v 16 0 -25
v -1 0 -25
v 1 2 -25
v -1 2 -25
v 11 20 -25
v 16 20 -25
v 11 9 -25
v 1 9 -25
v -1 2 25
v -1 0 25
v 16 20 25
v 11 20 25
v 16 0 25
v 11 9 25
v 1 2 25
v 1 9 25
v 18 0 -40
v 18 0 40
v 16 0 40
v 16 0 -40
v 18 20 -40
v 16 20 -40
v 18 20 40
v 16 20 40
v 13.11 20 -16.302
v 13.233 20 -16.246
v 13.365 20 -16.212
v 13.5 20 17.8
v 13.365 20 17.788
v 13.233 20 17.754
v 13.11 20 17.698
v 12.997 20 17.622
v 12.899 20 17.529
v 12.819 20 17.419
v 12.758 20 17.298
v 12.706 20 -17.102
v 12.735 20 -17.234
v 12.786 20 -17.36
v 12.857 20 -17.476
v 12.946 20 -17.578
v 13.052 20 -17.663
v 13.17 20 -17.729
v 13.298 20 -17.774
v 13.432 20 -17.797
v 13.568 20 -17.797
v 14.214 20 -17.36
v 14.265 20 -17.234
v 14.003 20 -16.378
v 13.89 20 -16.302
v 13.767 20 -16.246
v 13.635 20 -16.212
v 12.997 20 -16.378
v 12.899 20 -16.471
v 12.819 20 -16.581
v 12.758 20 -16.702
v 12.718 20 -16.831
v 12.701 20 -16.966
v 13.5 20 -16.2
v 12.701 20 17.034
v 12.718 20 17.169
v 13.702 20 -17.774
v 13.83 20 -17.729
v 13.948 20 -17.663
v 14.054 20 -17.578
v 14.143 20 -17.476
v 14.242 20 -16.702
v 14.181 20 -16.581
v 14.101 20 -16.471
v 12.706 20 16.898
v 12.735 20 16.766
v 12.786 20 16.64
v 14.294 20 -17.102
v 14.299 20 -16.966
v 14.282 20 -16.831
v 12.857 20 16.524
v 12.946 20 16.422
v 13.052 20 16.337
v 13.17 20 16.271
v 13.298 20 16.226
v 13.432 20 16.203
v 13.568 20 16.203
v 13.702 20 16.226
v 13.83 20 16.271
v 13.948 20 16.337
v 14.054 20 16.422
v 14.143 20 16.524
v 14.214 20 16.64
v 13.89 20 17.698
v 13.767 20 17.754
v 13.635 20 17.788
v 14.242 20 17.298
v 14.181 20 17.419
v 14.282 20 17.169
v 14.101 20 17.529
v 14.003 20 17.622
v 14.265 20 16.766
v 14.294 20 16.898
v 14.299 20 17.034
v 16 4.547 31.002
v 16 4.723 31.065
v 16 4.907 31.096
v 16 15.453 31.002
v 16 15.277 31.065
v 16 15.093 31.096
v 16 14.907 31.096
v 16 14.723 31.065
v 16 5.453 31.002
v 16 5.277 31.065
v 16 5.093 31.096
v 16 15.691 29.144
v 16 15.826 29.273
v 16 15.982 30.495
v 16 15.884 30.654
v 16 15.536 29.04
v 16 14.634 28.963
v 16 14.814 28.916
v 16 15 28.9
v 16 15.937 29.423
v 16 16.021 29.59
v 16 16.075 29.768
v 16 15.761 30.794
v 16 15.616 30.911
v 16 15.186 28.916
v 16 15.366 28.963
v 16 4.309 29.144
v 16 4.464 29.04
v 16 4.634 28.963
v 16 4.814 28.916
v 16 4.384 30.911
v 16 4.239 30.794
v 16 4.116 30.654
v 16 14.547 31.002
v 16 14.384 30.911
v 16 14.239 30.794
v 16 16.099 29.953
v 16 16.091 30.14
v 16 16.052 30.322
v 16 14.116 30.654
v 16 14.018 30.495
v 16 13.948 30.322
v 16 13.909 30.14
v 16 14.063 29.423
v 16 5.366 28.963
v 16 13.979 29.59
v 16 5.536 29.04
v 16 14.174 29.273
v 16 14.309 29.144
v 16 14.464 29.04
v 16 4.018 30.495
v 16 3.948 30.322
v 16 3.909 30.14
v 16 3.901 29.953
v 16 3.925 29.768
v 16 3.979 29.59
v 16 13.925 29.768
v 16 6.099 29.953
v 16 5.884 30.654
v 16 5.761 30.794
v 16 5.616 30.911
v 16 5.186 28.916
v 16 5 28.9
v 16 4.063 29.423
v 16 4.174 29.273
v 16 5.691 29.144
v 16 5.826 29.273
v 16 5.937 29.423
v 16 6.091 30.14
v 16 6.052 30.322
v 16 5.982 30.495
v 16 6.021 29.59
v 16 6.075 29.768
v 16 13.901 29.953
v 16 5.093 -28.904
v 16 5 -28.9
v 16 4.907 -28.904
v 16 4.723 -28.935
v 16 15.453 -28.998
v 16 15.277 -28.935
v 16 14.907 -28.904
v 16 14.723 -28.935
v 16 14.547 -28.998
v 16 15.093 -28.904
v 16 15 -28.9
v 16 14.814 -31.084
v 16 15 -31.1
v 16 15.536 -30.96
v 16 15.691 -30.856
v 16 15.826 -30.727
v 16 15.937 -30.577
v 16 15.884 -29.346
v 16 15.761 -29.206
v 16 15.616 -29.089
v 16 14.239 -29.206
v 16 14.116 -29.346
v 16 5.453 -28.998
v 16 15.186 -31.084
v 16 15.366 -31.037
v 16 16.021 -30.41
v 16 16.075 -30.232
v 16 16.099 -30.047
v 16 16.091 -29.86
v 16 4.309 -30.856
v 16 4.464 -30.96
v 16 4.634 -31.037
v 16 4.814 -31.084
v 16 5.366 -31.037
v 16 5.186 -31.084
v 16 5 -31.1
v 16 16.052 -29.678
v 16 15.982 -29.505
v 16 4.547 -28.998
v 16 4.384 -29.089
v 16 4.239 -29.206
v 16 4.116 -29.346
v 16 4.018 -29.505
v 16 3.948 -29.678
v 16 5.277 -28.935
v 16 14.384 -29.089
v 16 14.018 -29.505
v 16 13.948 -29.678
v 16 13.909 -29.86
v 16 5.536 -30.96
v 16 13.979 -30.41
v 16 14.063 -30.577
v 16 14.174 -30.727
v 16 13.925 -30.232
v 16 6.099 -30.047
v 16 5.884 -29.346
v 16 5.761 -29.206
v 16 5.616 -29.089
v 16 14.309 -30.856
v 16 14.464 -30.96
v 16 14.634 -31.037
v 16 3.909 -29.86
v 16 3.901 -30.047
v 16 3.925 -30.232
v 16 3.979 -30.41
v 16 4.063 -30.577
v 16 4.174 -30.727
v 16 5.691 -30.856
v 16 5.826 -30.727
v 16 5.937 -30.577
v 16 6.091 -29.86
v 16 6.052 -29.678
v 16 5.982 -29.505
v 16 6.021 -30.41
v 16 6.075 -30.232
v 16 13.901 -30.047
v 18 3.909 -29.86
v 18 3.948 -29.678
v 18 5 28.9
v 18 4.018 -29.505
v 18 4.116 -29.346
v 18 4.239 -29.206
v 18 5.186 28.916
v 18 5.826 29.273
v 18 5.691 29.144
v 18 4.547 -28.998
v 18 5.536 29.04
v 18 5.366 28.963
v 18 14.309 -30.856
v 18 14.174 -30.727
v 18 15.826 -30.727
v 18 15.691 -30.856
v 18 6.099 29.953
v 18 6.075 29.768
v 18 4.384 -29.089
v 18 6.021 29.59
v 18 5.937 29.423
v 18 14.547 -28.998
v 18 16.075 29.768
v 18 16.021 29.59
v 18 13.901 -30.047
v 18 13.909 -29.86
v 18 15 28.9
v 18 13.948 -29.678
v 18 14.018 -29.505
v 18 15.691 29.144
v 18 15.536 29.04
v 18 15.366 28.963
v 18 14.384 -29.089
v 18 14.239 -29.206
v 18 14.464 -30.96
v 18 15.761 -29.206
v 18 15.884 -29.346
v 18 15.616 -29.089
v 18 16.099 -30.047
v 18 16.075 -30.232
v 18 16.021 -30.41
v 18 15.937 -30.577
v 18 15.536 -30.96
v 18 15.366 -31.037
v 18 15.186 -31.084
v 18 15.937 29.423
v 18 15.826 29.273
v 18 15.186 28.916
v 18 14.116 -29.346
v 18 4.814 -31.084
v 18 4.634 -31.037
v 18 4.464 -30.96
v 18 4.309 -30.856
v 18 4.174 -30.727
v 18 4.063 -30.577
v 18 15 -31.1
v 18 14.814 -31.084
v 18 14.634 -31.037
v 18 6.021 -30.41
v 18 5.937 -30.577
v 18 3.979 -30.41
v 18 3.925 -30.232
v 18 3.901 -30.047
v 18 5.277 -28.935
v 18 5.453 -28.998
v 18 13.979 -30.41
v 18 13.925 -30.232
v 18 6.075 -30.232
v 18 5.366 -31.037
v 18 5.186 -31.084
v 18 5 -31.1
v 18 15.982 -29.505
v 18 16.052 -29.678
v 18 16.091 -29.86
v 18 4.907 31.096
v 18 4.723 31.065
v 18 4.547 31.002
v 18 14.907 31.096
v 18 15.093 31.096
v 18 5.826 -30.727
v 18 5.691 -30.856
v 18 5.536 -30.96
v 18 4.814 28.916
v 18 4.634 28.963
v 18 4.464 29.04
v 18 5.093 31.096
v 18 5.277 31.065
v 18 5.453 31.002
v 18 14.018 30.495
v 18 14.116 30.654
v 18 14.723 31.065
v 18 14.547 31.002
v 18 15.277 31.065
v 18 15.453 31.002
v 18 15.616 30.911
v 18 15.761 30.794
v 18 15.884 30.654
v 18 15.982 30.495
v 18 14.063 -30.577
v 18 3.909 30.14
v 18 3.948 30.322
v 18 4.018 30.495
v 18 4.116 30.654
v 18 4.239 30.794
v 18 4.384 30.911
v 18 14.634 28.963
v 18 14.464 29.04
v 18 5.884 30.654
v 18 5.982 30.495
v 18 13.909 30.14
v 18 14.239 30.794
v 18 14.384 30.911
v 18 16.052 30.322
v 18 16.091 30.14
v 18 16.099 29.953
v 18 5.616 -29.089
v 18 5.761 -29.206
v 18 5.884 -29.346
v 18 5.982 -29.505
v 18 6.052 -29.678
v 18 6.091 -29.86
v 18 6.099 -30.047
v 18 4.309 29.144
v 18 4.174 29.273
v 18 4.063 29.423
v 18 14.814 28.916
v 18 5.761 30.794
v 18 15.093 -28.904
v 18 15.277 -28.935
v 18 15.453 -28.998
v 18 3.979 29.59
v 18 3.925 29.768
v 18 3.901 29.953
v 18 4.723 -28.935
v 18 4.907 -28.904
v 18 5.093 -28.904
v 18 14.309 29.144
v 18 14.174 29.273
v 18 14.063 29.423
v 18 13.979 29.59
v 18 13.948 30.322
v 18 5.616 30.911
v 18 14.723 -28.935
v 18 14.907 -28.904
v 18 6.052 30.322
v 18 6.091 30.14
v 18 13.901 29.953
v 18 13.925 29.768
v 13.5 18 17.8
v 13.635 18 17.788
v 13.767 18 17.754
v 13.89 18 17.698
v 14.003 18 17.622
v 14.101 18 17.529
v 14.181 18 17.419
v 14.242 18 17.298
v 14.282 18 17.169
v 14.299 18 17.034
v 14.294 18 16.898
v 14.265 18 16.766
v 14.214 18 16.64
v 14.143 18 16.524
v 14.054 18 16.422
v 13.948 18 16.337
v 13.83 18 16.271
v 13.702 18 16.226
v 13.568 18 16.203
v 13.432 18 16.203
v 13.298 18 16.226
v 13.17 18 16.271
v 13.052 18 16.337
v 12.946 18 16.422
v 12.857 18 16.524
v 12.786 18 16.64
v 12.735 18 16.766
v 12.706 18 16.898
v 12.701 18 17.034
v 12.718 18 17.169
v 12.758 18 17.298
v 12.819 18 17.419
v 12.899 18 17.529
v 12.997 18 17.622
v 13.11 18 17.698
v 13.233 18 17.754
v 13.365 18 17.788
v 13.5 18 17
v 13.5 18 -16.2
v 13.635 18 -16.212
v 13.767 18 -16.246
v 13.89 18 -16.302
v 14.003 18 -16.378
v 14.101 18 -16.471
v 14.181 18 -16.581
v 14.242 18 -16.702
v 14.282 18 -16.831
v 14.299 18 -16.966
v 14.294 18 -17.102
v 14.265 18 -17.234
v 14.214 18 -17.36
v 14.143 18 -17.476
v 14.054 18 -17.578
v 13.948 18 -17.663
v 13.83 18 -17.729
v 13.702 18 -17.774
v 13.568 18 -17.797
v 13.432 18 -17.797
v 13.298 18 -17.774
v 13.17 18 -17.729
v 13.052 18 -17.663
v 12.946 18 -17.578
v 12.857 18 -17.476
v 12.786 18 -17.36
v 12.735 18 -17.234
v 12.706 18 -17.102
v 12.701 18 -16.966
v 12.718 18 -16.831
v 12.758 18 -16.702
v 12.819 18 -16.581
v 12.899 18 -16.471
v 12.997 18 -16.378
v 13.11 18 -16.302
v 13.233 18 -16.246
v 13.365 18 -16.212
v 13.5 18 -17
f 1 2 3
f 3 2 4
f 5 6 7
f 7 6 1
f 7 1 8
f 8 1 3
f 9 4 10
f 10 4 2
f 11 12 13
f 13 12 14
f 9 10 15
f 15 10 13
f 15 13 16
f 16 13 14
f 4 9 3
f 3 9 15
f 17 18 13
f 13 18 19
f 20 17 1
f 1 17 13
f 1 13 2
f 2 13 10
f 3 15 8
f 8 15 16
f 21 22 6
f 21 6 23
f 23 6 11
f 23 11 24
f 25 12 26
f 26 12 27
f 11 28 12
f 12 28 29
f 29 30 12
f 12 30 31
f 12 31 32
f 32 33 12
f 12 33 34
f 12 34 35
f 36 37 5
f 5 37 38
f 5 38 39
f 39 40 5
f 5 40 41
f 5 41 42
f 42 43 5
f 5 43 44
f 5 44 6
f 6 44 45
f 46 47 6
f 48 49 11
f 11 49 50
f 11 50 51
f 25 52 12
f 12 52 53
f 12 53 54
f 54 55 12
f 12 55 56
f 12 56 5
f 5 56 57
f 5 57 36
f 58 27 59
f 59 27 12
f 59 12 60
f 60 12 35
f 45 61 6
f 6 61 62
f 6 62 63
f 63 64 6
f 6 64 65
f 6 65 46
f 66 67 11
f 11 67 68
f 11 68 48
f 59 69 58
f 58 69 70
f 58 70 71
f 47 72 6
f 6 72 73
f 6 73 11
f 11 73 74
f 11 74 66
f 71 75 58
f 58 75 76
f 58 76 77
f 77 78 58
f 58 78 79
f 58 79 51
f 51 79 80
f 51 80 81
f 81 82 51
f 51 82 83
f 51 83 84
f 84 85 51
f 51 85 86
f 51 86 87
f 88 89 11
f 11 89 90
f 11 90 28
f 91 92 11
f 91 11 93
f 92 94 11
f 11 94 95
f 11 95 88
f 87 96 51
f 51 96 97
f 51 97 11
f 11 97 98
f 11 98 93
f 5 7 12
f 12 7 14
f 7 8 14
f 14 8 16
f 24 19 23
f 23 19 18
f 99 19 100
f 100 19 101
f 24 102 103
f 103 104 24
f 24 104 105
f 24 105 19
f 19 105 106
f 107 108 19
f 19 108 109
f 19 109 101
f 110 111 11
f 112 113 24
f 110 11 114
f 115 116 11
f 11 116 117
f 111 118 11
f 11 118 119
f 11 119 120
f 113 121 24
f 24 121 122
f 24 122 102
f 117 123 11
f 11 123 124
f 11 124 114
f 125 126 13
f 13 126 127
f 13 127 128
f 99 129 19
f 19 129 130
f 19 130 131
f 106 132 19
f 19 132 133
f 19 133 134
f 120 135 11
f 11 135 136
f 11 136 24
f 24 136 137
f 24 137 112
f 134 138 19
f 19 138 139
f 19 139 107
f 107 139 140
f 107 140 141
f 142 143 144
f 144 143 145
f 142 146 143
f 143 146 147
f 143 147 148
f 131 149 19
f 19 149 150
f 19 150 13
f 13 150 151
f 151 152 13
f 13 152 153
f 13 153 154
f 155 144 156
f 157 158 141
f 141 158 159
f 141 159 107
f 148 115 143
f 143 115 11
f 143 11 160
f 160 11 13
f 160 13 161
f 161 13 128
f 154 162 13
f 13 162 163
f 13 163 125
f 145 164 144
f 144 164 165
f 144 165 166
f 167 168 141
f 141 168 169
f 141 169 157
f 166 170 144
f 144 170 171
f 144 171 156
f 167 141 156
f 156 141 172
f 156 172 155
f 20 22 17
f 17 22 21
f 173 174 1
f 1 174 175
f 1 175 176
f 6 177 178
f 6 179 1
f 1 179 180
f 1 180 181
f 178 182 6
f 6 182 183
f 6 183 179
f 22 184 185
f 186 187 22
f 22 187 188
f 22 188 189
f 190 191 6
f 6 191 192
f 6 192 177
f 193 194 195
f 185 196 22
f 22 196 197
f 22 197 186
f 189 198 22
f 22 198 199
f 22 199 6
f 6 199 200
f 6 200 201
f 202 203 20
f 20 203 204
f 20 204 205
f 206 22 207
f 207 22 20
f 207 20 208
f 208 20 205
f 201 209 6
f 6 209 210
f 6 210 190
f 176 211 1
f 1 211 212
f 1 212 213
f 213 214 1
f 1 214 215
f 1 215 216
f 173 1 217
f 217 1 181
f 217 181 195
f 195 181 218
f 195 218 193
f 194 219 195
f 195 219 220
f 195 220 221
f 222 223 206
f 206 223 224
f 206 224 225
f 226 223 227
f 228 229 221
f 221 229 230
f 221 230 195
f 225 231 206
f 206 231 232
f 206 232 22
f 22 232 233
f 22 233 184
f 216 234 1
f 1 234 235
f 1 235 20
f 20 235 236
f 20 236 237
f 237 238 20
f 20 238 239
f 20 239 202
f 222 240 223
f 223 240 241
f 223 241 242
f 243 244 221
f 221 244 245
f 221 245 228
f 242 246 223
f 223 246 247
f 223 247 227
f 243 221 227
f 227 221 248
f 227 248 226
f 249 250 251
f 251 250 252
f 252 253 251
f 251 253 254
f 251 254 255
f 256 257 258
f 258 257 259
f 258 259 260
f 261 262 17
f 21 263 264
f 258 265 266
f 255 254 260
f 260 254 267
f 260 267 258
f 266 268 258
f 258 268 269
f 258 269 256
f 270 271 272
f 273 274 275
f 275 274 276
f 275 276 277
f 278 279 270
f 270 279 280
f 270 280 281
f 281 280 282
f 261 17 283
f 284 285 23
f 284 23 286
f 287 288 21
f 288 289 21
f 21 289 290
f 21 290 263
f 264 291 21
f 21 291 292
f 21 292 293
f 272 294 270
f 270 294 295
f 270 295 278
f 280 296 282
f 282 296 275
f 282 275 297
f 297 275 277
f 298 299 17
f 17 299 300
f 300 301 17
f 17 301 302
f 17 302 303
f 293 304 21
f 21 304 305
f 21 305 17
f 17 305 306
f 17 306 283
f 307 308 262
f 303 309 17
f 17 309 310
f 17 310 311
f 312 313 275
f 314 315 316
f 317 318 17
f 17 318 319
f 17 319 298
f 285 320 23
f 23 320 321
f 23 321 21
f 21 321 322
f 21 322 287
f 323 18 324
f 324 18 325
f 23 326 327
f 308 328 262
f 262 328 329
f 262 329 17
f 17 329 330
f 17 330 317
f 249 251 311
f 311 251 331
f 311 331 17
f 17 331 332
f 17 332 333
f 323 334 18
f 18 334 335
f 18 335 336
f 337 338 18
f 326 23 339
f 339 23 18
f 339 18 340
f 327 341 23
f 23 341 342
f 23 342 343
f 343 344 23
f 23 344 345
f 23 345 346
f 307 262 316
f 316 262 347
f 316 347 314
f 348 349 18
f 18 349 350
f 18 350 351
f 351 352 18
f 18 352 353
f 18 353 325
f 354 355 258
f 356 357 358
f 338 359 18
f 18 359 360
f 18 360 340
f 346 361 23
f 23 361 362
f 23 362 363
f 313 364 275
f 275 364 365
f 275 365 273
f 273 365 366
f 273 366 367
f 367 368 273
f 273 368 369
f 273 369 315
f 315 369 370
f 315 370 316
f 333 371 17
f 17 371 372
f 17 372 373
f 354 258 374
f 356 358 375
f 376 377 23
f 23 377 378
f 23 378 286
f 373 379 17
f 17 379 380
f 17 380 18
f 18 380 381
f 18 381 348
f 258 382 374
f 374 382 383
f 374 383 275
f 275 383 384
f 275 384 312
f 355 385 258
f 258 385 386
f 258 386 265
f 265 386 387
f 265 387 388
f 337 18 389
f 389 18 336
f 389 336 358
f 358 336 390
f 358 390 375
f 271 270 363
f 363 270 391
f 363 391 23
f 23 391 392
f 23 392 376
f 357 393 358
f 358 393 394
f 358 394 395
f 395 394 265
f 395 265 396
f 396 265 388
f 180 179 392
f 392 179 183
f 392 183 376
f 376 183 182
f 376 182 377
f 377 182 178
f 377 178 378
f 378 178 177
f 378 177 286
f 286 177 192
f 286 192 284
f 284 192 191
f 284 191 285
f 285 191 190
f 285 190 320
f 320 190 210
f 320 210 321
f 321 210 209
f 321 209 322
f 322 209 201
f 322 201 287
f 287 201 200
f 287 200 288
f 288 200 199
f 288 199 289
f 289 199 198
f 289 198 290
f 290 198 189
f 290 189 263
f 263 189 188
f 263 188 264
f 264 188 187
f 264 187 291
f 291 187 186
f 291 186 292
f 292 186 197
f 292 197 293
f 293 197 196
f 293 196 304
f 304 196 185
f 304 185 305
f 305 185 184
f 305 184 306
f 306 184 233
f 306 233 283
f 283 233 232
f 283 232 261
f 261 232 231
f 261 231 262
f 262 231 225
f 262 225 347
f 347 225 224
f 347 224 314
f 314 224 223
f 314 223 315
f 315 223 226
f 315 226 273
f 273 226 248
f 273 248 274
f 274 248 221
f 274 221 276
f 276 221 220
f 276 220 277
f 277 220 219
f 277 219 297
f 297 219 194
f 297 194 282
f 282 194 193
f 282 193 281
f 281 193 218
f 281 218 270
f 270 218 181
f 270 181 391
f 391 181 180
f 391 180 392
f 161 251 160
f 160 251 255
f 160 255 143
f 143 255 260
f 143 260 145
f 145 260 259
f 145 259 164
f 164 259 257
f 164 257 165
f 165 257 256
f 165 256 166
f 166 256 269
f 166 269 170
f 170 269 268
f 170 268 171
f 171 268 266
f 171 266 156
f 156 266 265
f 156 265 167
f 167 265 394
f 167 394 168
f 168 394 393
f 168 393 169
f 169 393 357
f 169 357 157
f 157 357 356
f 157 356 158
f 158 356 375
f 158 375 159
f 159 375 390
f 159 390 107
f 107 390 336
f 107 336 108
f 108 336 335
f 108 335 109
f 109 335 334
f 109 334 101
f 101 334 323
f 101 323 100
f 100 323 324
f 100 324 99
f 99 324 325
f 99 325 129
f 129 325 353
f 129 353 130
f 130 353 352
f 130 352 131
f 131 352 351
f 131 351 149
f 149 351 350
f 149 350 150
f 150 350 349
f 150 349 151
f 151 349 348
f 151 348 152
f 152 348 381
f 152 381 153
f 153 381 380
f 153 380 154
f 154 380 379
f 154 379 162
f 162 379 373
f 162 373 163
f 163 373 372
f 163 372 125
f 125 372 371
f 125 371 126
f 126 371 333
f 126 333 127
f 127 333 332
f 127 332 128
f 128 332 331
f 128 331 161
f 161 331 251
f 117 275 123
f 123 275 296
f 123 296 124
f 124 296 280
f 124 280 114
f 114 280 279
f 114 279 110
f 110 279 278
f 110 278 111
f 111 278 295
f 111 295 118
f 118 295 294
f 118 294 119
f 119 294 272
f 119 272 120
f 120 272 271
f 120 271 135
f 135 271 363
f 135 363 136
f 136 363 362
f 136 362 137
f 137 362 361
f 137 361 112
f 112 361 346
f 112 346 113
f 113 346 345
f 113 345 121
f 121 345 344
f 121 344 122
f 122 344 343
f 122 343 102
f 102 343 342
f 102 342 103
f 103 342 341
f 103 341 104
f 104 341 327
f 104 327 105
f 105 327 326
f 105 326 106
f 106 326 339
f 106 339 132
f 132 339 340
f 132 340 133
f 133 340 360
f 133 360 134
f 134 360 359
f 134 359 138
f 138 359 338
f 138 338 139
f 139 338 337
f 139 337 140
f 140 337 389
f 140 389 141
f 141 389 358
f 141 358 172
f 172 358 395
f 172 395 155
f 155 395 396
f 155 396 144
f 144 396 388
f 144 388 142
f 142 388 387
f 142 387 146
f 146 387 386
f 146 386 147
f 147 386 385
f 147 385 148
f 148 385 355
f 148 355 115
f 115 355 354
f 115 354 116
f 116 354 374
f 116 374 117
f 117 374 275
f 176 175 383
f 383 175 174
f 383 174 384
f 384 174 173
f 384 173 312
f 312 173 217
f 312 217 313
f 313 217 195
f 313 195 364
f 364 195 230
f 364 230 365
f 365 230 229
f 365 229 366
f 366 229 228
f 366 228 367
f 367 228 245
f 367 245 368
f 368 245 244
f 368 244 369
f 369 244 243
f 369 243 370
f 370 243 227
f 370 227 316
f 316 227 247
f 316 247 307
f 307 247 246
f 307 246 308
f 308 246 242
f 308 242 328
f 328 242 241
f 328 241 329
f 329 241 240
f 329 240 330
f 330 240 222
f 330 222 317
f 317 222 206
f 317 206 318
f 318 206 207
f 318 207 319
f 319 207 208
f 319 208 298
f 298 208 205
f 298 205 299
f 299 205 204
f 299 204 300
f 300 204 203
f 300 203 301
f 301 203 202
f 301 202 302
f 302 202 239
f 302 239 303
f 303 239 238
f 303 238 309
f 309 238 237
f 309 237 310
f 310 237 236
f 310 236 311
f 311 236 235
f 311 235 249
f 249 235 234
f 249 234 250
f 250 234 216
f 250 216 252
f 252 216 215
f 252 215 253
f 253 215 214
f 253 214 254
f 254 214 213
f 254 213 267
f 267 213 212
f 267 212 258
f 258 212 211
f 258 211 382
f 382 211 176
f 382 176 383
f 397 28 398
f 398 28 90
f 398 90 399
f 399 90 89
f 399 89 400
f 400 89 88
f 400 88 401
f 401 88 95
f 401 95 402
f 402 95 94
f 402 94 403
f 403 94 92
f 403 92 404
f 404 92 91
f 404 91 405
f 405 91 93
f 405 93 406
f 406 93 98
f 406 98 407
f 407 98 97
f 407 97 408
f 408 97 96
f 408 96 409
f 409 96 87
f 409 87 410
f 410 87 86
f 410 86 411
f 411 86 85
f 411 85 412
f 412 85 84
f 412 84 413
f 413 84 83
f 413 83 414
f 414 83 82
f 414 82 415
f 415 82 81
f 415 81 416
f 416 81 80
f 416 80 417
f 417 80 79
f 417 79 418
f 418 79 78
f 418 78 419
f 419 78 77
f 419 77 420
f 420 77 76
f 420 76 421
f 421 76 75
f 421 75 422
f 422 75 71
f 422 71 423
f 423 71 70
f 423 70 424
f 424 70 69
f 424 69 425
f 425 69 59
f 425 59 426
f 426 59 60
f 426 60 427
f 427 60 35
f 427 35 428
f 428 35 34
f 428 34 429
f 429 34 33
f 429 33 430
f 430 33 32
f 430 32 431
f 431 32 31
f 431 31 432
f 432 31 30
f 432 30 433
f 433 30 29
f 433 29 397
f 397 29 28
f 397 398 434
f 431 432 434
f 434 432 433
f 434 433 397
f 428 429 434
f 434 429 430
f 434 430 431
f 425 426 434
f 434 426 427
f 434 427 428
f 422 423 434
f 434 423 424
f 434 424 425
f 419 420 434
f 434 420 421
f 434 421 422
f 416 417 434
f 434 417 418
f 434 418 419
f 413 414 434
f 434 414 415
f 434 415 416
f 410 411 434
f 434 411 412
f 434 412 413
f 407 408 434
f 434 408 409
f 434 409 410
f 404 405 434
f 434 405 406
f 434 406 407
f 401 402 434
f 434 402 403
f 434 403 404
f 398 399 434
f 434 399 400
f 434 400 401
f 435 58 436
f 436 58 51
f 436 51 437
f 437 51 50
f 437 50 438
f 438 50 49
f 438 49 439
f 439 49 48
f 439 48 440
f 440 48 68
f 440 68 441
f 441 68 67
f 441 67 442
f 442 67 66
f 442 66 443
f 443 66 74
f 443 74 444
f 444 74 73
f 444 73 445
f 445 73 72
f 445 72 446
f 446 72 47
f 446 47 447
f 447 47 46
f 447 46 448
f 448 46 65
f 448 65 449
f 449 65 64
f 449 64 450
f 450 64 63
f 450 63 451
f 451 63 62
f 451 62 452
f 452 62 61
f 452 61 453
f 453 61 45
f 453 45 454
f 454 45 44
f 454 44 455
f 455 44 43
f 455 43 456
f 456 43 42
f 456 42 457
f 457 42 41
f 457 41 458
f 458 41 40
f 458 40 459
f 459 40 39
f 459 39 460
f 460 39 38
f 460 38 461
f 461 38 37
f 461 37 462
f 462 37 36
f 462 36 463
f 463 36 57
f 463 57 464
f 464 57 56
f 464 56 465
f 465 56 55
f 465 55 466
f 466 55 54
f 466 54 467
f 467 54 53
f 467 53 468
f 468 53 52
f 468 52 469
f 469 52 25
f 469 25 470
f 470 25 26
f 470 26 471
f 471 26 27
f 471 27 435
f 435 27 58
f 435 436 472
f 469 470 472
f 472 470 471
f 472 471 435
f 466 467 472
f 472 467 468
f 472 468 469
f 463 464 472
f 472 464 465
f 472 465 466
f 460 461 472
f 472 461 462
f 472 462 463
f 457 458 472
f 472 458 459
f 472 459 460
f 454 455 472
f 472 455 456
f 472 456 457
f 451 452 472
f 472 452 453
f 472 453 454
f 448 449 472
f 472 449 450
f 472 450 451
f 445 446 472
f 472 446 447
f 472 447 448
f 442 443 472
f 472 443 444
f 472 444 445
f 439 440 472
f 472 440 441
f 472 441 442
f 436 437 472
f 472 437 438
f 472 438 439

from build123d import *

# Parameters (mm, degrees)
SKETCH_1_W          = 2
SKETCH_1_H          = 50
EXTRUDE_1_DEPTH     = 2
SKETCH_3_W          = 50
SKETCH_3_H          = 20
EXTRUDE_3_DEPTH     = 20
SKETCH_4_W          = 10
SKETCH_4_H          = 11
CUT_EXTRUDE_1_DEPTH = 58.801384066
SKETCH_6_W          = 15
SKETCH_6_H          = 20
EXTRUDE_4_DEPTH     = 5
SKETCH_7_W          = 3
SKETCH_7_H          = 80
CUT_EXTRUDE_4_DEPTH = 50.406477308
SKETCH_8_R          = 1.1
CUT_EXTRUDE_5_DEPTH = 49.590122453
SKETCH_9_R          = 0.8
CUT_EXTRUDE_6_DEPTH = 2


with BuildPart() as part:
    # 草图1 → 凸台-拉伸1 (new body)
    with BuildSketch(Plane(origin=(0, 0, 0), x_dir=(1, 0, 0), z_dir=(0, 1, 0))):
        Rectangle(SKETCH_1_W, SKETCH_1_H)
    extrude(amount=EXTRUDE_1_DEPTH)

    # 草图3 → 凸台-拉伸3 (add)
    with BuildSketch(Plane(origin=(1, 0, 0), x_dir=(0, 0, -1), z_dir=(1, 0, 0))):
        with Locations((0, 10)):
            Rectangle(SKETCH_3_W, SKETCH_3_H)
    extrude(amount=EXTRUDE_3_DEPTH)

    # 草图4 → 切除-拉伸1 (cut, through all)
    with BuildSketch(Plane.XY.offset(25)):
        with Locations((6, 14.5)):
            Rectangle(SKETCH_4_W, SKETCH_4_H)
    extrude(amount=-CUT_EXTRUDE_1_DEPTH, mode=Mode.SUBTRACT)

    # 草图6 → 凸台-拉伸4 (add)
    with BuildSketch(Plane(origin=(21, 0, 0), x_dir=(0, 0, -1), z_dir=(1, 0, 0))):
        with Locations((-32.5, 10)):
            Rectangle(SKETCH_6_W, SKETCH_6_H)
        with Locations((32.5, 10)):
            Rectangle(SKETCH_6_W, SKETCH_6_H)
    extrude(amount=-EXTRUDE_4_DEPTH)

    # 草图7 → 切除-拉伸4 (cut, through all)
    with BuildSketch(Plane(origin=(0, 20, 0), x_dir=(1, 0, 0), z_dir=(0, 1, 0))):
        with Locations((19.5, 0)):
            Rectangle(SKETCH_7_W, SKETCH_7_H)
    extrude(amount=-CUT_EXTRUDE_4_DEPTH, mode=Mode.SUBTRACT)

    # 草图8 → 切除-拉伸5 (cut, through all)
    with BuildSketch(Plane(origin=(18, 0, 0), x_dir=(0, 0, -1), z_dir=(1, 0, 0))):
        with Locations((30, 15)):
            Circle(SKETCH_8_R)
        with Locations((30, 5)):
            Circle(SKETCH_8_R)
        with Locations((-30, 15)):
            Circle(SKETCH_8_R)
        with Locations((-30, 5)):
            Circle(SKETCH_8_R)
    extrude(amount=-CUT_EXTRUDE_5_DEPTH, mode=Mode.SUBTRACT)

    # 草图9 → 切除-拉伸6 (cut)
    with BuildSketch(Plane(origin=(0, 20, 0), x_dir=(1, 0, 0), z_dir=(0, 1, 0))):
        with Locations(Location((13.5, -17, 0), (0, 0, 270))):
            Circle(SKETCH_9_R)
        with Locations(Location((13.5, 17, 0), (0, 0, 270))):
            Circle(SKETCH_9_R)
    extrude(amount=-CUT_EXTRUDE_6_DEPTH, mode=Mode.SUBTRACT)


solid = part.part
